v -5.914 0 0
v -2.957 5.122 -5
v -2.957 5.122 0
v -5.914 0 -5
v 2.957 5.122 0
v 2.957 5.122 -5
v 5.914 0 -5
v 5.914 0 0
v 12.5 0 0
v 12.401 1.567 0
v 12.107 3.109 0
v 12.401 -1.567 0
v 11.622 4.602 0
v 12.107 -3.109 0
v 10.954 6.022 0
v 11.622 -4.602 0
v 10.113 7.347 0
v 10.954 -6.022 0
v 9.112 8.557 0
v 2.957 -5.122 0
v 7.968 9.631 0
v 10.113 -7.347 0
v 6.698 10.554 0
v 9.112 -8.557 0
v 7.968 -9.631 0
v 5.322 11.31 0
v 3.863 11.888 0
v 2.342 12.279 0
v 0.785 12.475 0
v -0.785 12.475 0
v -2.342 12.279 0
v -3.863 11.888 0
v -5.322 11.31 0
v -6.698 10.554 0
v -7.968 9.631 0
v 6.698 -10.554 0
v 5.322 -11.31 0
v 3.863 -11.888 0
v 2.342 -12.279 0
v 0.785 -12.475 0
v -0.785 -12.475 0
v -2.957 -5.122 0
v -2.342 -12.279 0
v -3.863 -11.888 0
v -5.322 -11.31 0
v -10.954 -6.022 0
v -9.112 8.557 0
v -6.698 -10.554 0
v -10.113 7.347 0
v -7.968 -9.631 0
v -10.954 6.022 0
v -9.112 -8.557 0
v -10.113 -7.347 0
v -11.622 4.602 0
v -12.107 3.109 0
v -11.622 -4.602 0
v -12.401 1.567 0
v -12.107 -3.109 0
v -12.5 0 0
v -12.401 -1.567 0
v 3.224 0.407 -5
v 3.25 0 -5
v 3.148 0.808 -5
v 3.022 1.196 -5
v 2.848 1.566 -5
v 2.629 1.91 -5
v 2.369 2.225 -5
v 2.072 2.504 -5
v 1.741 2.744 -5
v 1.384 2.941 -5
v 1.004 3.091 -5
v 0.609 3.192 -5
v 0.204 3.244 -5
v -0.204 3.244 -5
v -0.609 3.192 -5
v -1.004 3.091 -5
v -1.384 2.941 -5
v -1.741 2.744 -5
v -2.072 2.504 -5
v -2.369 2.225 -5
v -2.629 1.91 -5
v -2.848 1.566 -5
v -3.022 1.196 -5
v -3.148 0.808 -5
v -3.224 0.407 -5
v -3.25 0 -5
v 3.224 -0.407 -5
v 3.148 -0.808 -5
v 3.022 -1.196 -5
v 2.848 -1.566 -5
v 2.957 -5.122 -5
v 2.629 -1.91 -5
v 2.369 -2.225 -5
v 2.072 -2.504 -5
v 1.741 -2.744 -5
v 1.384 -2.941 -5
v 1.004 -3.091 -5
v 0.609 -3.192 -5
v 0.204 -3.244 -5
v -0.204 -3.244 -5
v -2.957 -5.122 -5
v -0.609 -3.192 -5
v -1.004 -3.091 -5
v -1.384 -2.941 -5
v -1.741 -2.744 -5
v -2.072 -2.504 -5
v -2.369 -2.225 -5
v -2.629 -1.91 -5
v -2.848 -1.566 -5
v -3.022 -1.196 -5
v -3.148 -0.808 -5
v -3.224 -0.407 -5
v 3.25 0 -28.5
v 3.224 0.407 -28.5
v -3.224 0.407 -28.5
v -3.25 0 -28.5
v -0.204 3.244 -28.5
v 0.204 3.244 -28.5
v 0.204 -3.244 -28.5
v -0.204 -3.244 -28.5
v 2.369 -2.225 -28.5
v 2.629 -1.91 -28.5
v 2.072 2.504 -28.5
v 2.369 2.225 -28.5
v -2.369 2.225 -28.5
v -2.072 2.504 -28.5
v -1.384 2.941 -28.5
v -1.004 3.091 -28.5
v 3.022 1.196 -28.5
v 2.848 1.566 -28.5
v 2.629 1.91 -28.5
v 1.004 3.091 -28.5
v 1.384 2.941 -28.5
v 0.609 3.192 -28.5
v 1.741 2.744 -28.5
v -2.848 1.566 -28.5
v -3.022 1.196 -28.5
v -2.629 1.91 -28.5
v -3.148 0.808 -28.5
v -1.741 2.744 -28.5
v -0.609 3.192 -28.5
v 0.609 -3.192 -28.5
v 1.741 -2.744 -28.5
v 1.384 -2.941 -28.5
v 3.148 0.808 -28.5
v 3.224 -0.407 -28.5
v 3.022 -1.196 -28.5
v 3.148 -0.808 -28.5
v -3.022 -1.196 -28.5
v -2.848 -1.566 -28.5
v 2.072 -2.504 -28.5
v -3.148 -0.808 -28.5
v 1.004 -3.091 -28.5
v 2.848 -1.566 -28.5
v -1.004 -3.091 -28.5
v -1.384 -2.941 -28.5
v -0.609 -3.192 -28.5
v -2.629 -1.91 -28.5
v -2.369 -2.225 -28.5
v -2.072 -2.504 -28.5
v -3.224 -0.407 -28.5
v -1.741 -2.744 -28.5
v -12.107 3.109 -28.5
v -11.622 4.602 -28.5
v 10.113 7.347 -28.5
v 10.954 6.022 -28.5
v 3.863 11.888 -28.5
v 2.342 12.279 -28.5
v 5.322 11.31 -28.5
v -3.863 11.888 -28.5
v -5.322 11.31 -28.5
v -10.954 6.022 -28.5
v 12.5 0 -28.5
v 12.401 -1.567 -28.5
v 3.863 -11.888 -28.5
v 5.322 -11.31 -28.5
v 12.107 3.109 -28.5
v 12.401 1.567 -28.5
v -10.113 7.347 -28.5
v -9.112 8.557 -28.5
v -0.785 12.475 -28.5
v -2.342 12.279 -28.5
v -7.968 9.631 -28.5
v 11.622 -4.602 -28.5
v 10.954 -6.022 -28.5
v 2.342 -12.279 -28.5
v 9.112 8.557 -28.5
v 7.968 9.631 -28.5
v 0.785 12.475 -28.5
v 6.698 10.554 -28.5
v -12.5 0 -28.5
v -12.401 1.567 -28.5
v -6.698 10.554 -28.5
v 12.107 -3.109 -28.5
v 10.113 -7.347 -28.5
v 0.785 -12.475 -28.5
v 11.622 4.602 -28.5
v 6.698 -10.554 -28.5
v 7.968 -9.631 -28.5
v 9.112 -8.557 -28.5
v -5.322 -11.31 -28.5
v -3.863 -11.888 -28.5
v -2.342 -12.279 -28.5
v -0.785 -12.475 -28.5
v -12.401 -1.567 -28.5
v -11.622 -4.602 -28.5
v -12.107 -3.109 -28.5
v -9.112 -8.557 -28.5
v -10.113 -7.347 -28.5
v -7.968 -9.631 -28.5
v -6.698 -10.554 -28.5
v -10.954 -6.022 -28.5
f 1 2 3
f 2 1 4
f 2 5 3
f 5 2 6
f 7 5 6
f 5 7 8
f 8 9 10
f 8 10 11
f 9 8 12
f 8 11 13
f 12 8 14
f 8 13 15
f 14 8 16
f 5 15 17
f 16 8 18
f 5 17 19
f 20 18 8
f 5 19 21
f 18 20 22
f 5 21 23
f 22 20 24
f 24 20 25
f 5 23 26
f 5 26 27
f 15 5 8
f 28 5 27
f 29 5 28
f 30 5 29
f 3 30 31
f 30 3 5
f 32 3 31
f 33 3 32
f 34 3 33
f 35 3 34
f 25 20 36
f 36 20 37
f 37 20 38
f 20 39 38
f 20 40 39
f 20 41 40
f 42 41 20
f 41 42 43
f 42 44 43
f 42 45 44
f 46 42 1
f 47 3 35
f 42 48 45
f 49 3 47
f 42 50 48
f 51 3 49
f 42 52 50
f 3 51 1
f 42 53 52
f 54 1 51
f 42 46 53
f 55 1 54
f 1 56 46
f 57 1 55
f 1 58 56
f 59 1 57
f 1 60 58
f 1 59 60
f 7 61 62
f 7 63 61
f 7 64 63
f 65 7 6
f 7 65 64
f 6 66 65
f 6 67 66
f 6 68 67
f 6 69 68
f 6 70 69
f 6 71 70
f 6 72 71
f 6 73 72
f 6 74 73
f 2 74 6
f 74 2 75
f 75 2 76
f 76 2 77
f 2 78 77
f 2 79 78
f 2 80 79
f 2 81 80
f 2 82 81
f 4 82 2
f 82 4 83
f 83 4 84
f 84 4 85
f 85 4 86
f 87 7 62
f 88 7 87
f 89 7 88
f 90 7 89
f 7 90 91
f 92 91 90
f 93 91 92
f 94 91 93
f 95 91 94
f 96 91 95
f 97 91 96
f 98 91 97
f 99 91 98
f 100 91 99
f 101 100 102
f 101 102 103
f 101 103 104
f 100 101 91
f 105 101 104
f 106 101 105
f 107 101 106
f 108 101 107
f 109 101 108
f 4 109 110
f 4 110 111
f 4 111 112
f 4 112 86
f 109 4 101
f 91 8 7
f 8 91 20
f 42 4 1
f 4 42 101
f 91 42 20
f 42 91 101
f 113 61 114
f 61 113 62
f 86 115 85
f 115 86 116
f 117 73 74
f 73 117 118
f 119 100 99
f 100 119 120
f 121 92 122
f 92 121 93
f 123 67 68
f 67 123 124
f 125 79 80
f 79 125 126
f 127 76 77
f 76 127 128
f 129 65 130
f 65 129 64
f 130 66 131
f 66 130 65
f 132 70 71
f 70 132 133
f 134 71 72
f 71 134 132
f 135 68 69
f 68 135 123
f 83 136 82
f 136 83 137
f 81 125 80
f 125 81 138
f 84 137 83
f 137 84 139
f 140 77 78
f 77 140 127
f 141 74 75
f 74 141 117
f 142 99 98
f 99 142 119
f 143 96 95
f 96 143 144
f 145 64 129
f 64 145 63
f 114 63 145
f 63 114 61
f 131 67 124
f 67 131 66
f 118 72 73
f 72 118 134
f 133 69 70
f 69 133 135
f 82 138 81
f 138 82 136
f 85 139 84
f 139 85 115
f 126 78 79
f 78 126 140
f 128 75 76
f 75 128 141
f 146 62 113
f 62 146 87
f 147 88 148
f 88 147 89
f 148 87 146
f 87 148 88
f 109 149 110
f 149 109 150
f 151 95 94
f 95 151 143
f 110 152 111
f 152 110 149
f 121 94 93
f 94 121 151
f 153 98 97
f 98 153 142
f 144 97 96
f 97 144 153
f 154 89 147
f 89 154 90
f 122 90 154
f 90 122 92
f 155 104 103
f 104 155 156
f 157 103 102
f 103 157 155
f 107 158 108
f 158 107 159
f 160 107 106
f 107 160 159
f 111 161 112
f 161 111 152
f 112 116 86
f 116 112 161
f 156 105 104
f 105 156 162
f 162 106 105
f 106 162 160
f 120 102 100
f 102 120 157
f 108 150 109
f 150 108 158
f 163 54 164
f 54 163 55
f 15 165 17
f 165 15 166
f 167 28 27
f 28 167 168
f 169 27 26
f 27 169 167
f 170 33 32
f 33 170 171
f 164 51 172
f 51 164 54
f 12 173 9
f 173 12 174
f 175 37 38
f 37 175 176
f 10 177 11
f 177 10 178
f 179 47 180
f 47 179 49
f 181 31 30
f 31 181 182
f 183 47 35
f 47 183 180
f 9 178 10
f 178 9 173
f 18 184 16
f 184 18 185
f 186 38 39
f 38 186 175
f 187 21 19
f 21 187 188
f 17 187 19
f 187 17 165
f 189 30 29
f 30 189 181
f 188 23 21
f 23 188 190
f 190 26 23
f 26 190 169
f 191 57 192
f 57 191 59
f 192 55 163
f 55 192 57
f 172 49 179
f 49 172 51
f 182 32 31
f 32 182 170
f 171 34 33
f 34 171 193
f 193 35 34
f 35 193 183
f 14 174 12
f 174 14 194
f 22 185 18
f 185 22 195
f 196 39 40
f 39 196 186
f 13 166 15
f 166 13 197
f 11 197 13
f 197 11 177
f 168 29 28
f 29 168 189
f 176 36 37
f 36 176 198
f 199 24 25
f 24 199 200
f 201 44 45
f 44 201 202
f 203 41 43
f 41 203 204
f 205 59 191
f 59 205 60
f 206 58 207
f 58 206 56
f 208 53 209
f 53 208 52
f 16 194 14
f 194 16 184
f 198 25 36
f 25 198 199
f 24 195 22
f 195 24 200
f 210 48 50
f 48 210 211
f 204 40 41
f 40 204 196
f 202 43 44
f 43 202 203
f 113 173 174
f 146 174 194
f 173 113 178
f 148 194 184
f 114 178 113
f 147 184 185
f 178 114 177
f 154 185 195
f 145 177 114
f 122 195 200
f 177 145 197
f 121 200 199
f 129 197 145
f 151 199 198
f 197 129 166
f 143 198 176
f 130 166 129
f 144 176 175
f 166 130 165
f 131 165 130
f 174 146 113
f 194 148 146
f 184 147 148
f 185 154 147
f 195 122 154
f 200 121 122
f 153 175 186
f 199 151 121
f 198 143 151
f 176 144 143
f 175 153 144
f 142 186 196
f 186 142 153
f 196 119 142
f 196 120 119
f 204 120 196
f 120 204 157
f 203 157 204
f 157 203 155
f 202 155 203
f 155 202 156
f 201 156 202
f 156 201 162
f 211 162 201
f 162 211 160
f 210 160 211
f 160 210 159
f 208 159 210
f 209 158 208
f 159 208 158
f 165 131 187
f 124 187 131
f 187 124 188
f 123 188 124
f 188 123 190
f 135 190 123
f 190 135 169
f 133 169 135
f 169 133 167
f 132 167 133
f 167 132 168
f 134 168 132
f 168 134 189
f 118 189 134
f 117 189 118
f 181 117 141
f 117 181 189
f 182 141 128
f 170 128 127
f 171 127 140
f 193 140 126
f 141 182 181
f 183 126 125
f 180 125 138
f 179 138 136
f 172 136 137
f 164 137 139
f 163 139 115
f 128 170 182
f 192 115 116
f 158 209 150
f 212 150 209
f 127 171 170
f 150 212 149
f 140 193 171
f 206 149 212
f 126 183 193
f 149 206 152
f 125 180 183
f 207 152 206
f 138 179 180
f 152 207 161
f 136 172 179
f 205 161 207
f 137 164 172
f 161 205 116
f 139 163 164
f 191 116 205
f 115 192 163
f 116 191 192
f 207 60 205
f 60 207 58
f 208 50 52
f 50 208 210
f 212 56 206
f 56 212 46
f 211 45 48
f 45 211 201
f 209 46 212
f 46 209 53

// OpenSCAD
$fn = 50;

difference() {
	union() {
		translate(v = [0, 0, -28.5]) {
			cylinder(h = 28.5, r = 12.5);
		}
	}
	union() {
		translate(v = [0, 0, 0]) {
			rotate(a = [0, 0, 0]) {
				difference() {
					union() {
						translate(v = [0, 0, -5]) {
							linear_extrude(height = 5) {
								polygon(points = [[5.914249999999999, 0.0], [2.957125, 5.1218907443321156], [-2.9571249999999982, 5.1218907443321156], [-5.914249999999999, 7.242867331857232e-16], [-2.9571250000000022, -5.121890744332115], [2.9571249999999956, -5.121890744332118]]);
							}
						}
					}
					union();
				}
			}
		}
		#translate(v = [0, 0, -100.0]) {
			cylinder(h = 200, r = 3.25);
		}
	}
}
